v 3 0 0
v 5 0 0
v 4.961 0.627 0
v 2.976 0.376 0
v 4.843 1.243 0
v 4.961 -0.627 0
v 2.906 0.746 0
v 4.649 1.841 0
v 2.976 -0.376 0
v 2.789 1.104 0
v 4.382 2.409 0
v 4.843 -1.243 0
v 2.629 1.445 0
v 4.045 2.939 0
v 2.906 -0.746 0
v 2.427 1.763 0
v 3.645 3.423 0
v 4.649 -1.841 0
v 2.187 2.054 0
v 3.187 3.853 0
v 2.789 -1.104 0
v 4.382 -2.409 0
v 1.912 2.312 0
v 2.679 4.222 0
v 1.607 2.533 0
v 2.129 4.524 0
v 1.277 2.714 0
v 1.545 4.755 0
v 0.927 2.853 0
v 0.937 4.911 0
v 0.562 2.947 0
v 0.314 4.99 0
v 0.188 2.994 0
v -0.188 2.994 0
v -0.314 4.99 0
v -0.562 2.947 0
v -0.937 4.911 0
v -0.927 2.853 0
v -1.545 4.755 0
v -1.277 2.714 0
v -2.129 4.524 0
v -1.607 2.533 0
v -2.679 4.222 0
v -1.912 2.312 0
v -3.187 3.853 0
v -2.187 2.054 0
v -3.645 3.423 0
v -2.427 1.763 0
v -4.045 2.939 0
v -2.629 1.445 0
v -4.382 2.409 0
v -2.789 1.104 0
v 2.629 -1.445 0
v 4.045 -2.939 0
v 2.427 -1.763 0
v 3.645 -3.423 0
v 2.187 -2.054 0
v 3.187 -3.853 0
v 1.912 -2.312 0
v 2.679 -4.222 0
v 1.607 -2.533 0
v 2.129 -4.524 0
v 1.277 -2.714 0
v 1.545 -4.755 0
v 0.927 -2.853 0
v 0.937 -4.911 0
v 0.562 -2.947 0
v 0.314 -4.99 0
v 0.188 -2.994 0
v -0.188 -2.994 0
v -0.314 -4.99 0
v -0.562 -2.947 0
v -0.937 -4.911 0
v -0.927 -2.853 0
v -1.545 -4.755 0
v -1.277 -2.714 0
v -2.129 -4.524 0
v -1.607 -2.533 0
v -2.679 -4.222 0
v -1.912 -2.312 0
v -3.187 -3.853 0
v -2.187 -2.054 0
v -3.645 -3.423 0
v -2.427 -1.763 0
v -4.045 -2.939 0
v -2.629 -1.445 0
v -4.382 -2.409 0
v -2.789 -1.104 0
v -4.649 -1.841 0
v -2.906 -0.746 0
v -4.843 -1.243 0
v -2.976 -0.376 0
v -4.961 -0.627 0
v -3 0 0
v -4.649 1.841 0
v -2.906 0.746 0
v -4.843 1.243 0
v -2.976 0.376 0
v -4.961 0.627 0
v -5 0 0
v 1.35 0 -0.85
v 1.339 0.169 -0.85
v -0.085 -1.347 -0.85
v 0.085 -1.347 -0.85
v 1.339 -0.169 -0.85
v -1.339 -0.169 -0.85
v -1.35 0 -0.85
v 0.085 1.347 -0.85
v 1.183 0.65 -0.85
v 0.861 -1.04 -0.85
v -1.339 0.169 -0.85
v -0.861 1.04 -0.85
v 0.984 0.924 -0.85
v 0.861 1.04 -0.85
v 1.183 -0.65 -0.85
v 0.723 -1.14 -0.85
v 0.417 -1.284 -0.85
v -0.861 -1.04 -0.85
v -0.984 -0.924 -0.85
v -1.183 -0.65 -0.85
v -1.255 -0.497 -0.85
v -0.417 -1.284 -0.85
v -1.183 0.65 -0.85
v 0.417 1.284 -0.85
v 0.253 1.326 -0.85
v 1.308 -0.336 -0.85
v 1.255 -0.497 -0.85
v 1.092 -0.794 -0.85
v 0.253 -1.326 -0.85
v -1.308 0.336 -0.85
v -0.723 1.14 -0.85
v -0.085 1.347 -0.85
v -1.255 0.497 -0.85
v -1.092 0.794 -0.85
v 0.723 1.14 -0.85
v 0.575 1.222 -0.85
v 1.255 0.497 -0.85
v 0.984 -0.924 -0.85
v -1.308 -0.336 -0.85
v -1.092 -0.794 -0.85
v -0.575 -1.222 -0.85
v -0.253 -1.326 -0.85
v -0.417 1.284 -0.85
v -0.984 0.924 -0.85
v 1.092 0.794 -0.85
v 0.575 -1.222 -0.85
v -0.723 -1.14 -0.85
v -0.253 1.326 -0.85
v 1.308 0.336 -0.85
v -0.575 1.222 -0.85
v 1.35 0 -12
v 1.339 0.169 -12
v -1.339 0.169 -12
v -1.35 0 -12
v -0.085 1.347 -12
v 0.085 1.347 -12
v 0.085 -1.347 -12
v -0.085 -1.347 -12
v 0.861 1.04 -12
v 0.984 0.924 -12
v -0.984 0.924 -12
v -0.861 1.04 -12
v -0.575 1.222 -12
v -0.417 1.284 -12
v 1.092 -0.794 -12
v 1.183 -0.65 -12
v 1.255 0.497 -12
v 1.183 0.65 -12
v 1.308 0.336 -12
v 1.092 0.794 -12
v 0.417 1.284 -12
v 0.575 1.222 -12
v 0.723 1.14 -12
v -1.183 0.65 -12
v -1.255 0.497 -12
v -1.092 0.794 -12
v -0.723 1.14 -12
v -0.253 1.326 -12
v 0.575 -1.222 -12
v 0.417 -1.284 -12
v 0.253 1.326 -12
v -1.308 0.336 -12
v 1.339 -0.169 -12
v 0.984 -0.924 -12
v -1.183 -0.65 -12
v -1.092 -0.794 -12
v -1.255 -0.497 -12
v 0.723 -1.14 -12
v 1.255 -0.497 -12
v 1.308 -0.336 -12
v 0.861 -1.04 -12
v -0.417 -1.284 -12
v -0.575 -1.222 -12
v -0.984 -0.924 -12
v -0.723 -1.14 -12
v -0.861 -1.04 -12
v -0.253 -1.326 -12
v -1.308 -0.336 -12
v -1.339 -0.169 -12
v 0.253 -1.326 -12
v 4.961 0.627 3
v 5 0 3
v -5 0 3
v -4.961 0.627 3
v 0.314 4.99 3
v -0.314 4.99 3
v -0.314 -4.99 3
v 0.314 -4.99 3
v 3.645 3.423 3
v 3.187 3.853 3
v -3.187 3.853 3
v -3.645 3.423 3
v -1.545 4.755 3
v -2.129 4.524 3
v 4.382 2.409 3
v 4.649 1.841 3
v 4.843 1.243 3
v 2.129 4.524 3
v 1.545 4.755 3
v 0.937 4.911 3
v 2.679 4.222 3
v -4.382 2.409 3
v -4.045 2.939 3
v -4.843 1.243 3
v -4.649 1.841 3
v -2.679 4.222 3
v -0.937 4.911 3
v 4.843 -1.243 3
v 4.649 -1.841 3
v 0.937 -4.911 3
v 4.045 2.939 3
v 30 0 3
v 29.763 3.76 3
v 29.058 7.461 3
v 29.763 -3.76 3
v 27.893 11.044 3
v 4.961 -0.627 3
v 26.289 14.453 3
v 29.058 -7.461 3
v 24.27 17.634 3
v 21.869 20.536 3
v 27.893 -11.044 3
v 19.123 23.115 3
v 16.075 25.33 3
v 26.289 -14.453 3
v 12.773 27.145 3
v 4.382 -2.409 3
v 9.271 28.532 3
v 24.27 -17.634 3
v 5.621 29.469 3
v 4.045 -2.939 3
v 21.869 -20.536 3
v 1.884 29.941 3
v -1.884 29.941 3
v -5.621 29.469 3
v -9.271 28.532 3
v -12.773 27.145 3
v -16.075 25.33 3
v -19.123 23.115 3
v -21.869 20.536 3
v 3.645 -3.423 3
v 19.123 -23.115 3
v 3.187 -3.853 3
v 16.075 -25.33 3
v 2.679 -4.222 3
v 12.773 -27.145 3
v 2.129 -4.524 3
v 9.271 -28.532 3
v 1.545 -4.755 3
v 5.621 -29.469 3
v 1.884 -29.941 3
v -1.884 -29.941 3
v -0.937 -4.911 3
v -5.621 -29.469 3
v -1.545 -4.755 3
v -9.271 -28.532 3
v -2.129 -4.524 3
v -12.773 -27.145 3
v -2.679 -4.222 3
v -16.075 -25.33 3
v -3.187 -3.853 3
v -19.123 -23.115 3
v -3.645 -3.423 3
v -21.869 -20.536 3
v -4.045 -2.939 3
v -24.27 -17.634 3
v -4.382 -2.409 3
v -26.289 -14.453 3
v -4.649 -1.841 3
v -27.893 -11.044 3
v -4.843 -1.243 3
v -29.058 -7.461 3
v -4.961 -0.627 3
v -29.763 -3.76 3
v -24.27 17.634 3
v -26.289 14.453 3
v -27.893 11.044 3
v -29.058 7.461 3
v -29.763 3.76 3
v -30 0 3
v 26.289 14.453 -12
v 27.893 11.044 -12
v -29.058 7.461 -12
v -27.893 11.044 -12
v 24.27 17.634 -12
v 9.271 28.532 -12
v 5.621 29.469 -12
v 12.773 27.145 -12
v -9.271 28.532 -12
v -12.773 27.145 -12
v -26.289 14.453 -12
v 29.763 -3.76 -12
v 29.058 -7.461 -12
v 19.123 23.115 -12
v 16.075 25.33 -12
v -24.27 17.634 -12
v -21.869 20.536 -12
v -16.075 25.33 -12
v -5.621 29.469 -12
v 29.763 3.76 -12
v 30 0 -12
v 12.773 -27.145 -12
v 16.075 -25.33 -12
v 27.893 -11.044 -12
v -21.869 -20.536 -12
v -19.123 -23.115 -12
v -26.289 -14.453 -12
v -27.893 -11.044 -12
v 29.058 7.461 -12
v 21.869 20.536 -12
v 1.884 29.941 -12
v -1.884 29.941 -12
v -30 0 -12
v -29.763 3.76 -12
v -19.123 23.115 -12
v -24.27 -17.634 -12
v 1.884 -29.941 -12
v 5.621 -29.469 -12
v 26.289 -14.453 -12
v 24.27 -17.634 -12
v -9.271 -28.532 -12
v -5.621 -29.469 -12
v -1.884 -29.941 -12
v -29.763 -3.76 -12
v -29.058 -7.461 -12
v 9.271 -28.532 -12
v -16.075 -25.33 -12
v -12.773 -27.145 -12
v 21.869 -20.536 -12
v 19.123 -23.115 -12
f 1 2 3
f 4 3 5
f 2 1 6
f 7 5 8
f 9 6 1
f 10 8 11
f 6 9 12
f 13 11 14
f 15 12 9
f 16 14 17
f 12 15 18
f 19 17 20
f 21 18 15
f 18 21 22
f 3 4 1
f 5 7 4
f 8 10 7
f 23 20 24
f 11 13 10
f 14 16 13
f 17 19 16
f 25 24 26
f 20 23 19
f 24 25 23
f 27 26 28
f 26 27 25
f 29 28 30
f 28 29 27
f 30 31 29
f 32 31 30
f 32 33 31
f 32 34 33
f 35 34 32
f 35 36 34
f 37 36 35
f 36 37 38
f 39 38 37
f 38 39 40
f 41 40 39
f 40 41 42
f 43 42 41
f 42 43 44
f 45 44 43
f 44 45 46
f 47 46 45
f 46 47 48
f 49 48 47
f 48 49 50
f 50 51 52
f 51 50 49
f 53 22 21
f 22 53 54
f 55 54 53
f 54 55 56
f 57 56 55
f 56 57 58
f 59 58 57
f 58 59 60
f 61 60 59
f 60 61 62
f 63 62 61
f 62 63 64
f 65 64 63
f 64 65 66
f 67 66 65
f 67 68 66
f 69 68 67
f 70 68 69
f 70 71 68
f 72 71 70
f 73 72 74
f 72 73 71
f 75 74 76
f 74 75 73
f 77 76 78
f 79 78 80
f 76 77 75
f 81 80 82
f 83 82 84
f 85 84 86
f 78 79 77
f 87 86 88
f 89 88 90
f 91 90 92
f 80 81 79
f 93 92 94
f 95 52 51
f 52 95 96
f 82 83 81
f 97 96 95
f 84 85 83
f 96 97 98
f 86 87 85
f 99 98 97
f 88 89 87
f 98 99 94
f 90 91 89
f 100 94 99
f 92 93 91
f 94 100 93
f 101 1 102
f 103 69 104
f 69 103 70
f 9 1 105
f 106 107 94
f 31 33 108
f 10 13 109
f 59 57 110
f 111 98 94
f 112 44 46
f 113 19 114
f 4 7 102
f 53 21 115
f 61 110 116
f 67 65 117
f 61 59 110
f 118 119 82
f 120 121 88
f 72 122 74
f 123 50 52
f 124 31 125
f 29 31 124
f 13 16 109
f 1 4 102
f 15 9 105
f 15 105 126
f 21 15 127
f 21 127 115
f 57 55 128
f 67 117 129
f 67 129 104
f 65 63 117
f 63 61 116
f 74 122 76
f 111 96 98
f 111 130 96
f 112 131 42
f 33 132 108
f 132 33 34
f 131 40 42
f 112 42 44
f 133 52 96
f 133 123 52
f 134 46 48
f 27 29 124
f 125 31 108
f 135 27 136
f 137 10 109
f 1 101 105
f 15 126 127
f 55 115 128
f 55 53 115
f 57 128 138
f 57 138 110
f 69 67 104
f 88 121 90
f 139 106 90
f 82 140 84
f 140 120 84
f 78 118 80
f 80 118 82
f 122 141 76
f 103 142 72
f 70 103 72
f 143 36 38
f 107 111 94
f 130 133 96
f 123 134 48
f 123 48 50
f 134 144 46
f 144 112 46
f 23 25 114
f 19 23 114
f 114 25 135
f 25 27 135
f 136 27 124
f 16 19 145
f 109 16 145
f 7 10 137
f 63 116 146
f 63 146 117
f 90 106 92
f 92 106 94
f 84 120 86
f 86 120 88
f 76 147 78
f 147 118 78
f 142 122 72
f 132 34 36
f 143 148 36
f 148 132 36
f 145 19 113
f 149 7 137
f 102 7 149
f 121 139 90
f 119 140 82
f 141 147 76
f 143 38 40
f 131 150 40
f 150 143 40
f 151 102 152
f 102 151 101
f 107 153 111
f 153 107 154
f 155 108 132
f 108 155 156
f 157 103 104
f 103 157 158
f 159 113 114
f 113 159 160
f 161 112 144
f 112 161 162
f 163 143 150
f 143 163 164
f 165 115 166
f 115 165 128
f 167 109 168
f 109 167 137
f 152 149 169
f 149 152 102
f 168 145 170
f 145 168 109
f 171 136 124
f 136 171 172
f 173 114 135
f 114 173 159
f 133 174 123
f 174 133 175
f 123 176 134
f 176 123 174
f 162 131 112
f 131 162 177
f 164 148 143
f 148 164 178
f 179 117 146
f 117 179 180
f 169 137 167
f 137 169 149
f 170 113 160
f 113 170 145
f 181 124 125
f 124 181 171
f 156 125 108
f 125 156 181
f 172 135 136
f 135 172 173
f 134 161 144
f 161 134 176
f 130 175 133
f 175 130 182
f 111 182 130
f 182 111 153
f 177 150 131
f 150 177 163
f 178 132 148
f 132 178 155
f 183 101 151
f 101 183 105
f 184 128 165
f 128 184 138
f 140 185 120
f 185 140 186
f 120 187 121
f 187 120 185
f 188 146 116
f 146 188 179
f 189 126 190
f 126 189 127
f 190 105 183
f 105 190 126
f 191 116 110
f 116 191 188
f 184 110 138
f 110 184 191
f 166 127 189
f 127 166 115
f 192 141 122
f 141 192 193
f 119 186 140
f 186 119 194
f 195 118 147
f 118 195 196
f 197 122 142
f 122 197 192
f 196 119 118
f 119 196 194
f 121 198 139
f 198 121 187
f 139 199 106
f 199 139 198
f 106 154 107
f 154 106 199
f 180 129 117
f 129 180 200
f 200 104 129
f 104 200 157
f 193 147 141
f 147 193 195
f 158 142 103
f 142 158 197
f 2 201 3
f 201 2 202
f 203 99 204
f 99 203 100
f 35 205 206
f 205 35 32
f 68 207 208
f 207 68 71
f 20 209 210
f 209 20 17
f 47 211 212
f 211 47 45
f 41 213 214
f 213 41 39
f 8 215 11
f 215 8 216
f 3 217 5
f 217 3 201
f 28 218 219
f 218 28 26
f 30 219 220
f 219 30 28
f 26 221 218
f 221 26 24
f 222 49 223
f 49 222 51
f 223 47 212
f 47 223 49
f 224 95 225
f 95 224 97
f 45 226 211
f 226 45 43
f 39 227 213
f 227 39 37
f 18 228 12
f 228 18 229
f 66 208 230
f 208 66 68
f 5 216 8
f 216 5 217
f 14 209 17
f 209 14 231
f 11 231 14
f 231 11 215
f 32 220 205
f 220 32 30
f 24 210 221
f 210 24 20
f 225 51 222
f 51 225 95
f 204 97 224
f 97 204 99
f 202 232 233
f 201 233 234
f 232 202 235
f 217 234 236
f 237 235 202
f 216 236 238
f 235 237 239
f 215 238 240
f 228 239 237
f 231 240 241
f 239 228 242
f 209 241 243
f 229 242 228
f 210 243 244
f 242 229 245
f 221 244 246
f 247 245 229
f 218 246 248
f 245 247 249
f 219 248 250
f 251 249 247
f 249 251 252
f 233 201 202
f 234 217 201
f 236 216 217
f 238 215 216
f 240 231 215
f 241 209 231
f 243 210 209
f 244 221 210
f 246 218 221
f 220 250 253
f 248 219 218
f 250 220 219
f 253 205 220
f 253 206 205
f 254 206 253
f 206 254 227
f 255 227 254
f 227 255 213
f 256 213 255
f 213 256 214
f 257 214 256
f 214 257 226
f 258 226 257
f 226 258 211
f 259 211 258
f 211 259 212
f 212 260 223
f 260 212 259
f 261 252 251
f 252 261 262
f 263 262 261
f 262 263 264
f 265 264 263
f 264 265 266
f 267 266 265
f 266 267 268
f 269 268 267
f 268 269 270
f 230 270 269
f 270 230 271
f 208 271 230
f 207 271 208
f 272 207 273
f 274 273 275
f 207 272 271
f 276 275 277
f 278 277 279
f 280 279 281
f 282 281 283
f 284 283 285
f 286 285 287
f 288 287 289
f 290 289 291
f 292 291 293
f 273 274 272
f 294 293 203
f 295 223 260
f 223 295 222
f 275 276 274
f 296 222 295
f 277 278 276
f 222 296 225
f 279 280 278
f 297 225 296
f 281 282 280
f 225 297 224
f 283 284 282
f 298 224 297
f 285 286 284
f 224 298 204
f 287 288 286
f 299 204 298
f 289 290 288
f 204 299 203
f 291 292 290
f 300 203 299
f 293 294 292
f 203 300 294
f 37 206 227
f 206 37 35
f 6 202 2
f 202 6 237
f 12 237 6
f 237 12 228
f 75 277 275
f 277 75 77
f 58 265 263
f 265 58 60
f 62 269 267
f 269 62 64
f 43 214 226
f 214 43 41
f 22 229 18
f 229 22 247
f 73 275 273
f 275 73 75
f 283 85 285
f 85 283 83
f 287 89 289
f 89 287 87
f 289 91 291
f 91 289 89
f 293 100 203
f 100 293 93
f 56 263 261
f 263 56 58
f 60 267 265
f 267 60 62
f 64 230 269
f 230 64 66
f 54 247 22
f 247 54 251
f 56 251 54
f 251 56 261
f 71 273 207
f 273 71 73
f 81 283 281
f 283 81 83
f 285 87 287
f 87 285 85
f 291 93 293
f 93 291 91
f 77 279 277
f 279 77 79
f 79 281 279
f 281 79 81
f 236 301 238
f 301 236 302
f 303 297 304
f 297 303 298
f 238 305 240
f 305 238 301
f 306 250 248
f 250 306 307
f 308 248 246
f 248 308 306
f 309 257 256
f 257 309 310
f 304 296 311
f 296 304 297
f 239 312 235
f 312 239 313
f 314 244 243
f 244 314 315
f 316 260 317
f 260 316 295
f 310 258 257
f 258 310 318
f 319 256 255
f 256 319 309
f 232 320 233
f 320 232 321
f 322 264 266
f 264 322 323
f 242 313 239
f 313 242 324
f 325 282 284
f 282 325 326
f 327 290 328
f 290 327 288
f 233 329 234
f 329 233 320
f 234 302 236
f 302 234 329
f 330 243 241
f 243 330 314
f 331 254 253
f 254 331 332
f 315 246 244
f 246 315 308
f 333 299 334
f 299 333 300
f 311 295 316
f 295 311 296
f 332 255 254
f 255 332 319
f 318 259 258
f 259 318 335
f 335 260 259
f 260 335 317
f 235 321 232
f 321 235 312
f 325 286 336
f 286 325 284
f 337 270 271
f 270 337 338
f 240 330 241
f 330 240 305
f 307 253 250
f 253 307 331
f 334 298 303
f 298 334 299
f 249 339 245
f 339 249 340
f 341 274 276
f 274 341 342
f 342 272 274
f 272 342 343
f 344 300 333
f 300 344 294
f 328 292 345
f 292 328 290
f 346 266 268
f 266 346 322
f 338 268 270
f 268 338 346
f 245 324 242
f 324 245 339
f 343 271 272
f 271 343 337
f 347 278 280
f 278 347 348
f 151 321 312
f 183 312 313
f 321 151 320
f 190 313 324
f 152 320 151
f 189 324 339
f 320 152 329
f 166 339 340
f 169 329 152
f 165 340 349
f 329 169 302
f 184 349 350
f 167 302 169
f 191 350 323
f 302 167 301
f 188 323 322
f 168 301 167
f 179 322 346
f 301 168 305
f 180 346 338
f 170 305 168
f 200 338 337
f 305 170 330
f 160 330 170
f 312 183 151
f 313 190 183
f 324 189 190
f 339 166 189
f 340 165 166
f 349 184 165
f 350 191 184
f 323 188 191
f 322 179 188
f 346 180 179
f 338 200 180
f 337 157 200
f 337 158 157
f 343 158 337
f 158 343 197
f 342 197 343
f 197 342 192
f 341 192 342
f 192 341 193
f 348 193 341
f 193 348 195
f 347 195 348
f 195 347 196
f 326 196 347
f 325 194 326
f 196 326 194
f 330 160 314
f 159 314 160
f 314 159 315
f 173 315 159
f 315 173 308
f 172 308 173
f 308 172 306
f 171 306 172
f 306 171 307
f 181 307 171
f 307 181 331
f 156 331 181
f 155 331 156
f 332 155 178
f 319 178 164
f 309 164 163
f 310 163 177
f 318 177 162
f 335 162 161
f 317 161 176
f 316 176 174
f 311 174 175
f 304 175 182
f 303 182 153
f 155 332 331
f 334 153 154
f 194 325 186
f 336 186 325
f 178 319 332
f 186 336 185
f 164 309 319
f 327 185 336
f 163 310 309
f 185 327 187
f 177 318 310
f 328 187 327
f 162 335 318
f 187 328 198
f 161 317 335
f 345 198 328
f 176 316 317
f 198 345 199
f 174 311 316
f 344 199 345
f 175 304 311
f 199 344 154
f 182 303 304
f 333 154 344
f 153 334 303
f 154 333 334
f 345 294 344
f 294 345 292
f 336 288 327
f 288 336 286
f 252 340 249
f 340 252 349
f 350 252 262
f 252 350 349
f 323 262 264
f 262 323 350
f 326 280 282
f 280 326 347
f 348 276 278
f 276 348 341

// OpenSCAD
$fn = 50;


difference() {
	union() {
		translate(v = [0, 0, -12.0000000000]) {
			cylinder(h = 15, r = 30.0000000000);
		}
	}
	union() {
		translate(v = [0, 0, 0]) {
			rotate(a = [0, 0, 0]) {
				difference() {
					union() {
						translate(v = [0, 0, -15.0000000000]) {
							cylinder(h = 15, r = 1.0000000000);
						}
						translate(v = [0, 0, -0.8500000000]) {
							cylinder(h = 0.8500000000, r1 = 1.3500000000, r2 = 3.0000000000);
						}
						translate(v = [0, 0, -15.0000000000]) {
							cylinder(h = 15, r = 1.3500000000);
						}
						translate(v = [0, 0, -15.0000000000]) {
							cylinder(h = 15, r = 1.0000000000);
						}
					}
					union();
				}
			}
		}
		#cylinder(h = 3, r = 5.0000000000);
	}
}
